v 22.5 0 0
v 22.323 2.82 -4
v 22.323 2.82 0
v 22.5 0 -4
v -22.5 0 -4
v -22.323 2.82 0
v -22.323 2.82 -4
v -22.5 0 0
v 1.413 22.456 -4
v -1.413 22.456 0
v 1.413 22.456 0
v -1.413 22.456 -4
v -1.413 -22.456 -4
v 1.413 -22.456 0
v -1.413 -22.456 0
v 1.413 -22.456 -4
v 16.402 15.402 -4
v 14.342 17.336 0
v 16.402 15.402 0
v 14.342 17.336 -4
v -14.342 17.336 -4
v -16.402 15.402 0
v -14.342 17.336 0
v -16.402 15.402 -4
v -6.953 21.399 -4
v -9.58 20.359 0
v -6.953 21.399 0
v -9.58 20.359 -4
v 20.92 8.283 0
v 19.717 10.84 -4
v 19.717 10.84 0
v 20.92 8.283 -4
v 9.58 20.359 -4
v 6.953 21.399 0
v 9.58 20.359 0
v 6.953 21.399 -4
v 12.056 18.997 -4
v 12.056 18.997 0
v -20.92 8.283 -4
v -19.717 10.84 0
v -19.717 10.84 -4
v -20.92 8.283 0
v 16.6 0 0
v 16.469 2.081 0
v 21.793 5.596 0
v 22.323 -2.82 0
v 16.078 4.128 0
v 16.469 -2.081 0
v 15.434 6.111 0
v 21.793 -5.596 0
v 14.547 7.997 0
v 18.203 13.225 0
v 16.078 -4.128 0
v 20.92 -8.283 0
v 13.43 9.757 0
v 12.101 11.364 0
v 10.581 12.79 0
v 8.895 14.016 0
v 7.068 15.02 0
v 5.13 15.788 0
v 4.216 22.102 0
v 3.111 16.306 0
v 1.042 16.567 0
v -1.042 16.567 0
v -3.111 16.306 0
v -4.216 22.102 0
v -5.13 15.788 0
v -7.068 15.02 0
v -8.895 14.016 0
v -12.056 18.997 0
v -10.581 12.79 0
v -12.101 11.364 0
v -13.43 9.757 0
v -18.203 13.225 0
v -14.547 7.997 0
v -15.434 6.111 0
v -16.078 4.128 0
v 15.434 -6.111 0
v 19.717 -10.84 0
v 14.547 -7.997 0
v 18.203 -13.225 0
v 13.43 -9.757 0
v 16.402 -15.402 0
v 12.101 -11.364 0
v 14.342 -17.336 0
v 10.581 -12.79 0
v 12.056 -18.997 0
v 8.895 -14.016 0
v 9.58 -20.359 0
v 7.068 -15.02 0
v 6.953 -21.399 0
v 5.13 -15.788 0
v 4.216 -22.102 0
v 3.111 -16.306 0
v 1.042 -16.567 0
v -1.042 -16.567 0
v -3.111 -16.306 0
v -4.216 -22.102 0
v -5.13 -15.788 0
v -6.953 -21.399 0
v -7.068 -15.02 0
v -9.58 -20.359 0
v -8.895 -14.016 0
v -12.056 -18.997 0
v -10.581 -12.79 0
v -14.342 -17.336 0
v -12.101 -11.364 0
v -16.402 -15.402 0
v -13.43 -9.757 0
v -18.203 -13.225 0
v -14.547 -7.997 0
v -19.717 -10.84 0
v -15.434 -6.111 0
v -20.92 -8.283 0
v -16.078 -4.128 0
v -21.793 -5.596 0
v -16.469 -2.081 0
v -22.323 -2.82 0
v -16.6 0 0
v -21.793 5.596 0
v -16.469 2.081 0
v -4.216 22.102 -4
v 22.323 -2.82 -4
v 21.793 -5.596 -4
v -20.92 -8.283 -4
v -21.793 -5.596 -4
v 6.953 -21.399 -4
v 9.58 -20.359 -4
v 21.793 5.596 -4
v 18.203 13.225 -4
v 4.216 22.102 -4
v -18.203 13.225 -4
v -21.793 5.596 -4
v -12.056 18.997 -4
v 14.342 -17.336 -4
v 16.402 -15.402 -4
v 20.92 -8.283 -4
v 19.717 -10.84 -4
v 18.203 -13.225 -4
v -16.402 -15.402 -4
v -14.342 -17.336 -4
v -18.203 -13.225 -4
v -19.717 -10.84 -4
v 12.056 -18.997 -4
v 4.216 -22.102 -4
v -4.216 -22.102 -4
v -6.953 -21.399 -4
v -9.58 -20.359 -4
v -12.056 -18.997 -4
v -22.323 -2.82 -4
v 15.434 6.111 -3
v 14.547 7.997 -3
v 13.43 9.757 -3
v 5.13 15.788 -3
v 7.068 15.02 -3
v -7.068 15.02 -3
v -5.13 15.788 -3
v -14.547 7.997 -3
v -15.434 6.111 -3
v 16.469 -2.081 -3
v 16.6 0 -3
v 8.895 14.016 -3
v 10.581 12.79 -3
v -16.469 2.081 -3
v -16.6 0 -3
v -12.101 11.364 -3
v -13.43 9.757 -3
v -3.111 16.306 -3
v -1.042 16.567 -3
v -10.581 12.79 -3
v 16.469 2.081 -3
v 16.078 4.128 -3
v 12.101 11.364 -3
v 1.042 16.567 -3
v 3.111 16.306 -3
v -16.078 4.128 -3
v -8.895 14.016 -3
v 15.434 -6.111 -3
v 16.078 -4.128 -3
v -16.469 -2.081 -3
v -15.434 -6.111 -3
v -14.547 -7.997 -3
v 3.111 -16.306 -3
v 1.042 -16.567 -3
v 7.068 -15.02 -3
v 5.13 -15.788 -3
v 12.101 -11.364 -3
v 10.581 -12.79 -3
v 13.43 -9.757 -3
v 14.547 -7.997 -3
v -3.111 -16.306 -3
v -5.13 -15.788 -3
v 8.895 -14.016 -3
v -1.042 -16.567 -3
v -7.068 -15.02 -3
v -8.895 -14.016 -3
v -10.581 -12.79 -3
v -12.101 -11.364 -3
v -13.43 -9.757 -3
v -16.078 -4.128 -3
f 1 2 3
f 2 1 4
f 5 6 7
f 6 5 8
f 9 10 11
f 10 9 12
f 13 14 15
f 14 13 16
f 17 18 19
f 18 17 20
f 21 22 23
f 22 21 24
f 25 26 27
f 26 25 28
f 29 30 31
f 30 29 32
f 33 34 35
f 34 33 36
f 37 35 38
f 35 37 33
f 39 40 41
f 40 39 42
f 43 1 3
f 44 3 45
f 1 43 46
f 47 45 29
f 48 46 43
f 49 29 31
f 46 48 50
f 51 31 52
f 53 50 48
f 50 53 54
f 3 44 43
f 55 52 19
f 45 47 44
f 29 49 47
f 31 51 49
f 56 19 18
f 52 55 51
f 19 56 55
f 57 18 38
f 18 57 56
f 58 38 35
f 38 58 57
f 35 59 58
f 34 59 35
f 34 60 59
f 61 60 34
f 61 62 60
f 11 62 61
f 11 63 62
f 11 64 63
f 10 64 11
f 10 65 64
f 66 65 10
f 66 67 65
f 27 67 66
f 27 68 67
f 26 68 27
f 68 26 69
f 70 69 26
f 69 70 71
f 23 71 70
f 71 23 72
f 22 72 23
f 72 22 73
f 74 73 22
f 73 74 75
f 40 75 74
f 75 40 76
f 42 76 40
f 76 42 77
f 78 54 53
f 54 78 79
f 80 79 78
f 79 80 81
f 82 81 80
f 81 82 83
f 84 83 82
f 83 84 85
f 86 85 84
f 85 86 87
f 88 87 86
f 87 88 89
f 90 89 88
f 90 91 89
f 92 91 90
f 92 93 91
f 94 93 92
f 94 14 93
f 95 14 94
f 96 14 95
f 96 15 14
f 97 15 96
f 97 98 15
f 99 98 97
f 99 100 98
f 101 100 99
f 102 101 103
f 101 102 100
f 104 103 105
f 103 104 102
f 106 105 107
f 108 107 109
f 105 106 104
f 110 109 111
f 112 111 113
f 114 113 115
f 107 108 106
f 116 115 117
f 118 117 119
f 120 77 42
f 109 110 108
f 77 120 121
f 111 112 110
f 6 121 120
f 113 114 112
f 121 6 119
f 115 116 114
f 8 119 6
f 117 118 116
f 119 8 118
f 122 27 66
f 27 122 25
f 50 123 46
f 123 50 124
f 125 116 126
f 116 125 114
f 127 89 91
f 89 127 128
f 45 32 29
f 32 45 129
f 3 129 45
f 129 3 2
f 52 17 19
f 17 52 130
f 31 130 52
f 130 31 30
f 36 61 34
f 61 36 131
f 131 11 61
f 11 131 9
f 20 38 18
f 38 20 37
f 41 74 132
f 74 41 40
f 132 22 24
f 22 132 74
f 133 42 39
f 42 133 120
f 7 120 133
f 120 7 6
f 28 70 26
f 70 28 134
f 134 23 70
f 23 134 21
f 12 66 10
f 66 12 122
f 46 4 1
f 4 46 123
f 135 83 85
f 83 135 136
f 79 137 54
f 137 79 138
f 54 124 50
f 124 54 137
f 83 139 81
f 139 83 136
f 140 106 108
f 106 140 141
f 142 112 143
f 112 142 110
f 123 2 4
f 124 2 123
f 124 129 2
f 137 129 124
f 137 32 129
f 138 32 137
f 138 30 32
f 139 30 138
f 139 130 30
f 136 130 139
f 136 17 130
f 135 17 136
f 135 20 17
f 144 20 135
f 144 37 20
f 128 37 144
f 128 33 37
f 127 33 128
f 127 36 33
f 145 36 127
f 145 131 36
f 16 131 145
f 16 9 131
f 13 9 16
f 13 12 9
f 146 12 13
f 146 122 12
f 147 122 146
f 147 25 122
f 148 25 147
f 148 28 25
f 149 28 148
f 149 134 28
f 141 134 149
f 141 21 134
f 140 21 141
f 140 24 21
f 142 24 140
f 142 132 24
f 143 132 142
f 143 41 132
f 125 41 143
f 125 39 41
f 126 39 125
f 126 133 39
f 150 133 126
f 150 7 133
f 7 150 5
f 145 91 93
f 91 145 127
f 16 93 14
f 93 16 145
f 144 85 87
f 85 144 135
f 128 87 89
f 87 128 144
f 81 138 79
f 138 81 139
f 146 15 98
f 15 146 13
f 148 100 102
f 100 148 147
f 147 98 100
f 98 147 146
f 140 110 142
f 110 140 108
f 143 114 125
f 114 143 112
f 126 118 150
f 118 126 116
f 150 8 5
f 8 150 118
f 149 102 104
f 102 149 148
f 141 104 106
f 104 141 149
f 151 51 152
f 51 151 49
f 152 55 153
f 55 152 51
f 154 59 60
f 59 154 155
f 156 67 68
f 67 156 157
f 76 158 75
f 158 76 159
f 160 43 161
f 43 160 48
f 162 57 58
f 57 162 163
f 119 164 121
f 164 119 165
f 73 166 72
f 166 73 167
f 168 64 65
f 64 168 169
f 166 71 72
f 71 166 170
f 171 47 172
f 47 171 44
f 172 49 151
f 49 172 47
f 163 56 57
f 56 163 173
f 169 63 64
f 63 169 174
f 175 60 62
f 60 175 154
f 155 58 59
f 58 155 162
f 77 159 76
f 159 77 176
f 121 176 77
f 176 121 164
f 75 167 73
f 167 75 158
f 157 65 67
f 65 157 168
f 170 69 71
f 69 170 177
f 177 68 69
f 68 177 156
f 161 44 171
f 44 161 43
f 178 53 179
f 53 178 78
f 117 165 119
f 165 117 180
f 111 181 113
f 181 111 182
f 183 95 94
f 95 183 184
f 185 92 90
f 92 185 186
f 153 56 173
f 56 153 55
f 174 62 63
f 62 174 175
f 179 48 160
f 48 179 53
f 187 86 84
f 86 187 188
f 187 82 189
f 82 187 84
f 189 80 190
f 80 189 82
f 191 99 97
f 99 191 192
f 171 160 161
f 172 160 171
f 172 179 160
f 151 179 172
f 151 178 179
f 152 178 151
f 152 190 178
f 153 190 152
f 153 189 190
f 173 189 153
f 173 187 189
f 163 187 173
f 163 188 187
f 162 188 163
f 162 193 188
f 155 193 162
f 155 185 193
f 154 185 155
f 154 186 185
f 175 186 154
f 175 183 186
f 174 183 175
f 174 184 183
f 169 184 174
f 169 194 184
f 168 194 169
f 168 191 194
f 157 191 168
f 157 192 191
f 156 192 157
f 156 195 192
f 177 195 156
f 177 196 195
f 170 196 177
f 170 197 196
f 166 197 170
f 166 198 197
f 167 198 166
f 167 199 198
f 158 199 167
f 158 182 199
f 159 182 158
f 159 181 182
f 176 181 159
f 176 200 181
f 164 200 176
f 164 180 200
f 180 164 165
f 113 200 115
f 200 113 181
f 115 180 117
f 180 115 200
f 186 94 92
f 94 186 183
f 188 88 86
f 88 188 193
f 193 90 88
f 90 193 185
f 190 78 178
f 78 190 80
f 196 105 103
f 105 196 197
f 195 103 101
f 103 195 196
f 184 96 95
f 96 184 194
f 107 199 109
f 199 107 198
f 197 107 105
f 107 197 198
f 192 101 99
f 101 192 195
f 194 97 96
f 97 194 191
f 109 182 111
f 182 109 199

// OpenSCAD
$fn = 50;


difference() {
	union() {
		translate(v = [0, 0, -4.0000000000]) {
			cylinder(h = 4, r = 22.5000000000);
		}
	}
	union() {
		#translate(v = [0, 0, -3.0000000000]) {
			cylinder(h = 3, r = 16.6000000000);
		}
	}
}
